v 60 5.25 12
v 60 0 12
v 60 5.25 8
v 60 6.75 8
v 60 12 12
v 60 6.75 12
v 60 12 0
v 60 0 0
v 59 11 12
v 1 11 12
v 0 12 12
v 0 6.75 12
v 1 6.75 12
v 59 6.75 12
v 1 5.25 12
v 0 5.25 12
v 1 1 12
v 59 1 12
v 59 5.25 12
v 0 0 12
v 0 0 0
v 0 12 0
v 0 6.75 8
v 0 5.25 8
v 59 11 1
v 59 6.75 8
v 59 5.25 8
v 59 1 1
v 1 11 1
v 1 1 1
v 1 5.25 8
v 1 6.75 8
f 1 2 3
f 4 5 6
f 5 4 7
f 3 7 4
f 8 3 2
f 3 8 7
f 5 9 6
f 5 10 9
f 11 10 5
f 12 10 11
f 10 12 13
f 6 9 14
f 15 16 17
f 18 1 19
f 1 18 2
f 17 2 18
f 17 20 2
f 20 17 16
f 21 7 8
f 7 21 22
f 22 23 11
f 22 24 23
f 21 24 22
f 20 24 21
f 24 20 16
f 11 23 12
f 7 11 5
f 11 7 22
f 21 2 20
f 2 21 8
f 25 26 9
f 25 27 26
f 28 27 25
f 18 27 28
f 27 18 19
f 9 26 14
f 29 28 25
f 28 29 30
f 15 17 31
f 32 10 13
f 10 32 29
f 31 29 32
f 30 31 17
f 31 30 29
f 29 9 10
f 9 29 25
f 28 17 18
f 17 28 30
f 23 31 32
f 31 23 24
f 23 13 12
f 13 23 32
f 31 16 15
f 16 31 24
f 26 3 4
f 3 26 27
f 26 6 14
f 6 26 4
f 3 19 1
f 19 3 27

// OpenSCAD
module potting_box() {
    difference() {
        union() {
            cube([60, 12, 12]);
            
            
        }   
        //translate([7.75, 80-19-25]) square([71.5, 25]); // screen
        translate([1, 1, 1]) cube ([58, 10, 100]);
        translate([-5, 5.25, 8]) cube([10, 1.5, 100]);
        translate([55, 5.25, 8]) cube([10, 1.5, 100]);
    }
}

potting_box();
